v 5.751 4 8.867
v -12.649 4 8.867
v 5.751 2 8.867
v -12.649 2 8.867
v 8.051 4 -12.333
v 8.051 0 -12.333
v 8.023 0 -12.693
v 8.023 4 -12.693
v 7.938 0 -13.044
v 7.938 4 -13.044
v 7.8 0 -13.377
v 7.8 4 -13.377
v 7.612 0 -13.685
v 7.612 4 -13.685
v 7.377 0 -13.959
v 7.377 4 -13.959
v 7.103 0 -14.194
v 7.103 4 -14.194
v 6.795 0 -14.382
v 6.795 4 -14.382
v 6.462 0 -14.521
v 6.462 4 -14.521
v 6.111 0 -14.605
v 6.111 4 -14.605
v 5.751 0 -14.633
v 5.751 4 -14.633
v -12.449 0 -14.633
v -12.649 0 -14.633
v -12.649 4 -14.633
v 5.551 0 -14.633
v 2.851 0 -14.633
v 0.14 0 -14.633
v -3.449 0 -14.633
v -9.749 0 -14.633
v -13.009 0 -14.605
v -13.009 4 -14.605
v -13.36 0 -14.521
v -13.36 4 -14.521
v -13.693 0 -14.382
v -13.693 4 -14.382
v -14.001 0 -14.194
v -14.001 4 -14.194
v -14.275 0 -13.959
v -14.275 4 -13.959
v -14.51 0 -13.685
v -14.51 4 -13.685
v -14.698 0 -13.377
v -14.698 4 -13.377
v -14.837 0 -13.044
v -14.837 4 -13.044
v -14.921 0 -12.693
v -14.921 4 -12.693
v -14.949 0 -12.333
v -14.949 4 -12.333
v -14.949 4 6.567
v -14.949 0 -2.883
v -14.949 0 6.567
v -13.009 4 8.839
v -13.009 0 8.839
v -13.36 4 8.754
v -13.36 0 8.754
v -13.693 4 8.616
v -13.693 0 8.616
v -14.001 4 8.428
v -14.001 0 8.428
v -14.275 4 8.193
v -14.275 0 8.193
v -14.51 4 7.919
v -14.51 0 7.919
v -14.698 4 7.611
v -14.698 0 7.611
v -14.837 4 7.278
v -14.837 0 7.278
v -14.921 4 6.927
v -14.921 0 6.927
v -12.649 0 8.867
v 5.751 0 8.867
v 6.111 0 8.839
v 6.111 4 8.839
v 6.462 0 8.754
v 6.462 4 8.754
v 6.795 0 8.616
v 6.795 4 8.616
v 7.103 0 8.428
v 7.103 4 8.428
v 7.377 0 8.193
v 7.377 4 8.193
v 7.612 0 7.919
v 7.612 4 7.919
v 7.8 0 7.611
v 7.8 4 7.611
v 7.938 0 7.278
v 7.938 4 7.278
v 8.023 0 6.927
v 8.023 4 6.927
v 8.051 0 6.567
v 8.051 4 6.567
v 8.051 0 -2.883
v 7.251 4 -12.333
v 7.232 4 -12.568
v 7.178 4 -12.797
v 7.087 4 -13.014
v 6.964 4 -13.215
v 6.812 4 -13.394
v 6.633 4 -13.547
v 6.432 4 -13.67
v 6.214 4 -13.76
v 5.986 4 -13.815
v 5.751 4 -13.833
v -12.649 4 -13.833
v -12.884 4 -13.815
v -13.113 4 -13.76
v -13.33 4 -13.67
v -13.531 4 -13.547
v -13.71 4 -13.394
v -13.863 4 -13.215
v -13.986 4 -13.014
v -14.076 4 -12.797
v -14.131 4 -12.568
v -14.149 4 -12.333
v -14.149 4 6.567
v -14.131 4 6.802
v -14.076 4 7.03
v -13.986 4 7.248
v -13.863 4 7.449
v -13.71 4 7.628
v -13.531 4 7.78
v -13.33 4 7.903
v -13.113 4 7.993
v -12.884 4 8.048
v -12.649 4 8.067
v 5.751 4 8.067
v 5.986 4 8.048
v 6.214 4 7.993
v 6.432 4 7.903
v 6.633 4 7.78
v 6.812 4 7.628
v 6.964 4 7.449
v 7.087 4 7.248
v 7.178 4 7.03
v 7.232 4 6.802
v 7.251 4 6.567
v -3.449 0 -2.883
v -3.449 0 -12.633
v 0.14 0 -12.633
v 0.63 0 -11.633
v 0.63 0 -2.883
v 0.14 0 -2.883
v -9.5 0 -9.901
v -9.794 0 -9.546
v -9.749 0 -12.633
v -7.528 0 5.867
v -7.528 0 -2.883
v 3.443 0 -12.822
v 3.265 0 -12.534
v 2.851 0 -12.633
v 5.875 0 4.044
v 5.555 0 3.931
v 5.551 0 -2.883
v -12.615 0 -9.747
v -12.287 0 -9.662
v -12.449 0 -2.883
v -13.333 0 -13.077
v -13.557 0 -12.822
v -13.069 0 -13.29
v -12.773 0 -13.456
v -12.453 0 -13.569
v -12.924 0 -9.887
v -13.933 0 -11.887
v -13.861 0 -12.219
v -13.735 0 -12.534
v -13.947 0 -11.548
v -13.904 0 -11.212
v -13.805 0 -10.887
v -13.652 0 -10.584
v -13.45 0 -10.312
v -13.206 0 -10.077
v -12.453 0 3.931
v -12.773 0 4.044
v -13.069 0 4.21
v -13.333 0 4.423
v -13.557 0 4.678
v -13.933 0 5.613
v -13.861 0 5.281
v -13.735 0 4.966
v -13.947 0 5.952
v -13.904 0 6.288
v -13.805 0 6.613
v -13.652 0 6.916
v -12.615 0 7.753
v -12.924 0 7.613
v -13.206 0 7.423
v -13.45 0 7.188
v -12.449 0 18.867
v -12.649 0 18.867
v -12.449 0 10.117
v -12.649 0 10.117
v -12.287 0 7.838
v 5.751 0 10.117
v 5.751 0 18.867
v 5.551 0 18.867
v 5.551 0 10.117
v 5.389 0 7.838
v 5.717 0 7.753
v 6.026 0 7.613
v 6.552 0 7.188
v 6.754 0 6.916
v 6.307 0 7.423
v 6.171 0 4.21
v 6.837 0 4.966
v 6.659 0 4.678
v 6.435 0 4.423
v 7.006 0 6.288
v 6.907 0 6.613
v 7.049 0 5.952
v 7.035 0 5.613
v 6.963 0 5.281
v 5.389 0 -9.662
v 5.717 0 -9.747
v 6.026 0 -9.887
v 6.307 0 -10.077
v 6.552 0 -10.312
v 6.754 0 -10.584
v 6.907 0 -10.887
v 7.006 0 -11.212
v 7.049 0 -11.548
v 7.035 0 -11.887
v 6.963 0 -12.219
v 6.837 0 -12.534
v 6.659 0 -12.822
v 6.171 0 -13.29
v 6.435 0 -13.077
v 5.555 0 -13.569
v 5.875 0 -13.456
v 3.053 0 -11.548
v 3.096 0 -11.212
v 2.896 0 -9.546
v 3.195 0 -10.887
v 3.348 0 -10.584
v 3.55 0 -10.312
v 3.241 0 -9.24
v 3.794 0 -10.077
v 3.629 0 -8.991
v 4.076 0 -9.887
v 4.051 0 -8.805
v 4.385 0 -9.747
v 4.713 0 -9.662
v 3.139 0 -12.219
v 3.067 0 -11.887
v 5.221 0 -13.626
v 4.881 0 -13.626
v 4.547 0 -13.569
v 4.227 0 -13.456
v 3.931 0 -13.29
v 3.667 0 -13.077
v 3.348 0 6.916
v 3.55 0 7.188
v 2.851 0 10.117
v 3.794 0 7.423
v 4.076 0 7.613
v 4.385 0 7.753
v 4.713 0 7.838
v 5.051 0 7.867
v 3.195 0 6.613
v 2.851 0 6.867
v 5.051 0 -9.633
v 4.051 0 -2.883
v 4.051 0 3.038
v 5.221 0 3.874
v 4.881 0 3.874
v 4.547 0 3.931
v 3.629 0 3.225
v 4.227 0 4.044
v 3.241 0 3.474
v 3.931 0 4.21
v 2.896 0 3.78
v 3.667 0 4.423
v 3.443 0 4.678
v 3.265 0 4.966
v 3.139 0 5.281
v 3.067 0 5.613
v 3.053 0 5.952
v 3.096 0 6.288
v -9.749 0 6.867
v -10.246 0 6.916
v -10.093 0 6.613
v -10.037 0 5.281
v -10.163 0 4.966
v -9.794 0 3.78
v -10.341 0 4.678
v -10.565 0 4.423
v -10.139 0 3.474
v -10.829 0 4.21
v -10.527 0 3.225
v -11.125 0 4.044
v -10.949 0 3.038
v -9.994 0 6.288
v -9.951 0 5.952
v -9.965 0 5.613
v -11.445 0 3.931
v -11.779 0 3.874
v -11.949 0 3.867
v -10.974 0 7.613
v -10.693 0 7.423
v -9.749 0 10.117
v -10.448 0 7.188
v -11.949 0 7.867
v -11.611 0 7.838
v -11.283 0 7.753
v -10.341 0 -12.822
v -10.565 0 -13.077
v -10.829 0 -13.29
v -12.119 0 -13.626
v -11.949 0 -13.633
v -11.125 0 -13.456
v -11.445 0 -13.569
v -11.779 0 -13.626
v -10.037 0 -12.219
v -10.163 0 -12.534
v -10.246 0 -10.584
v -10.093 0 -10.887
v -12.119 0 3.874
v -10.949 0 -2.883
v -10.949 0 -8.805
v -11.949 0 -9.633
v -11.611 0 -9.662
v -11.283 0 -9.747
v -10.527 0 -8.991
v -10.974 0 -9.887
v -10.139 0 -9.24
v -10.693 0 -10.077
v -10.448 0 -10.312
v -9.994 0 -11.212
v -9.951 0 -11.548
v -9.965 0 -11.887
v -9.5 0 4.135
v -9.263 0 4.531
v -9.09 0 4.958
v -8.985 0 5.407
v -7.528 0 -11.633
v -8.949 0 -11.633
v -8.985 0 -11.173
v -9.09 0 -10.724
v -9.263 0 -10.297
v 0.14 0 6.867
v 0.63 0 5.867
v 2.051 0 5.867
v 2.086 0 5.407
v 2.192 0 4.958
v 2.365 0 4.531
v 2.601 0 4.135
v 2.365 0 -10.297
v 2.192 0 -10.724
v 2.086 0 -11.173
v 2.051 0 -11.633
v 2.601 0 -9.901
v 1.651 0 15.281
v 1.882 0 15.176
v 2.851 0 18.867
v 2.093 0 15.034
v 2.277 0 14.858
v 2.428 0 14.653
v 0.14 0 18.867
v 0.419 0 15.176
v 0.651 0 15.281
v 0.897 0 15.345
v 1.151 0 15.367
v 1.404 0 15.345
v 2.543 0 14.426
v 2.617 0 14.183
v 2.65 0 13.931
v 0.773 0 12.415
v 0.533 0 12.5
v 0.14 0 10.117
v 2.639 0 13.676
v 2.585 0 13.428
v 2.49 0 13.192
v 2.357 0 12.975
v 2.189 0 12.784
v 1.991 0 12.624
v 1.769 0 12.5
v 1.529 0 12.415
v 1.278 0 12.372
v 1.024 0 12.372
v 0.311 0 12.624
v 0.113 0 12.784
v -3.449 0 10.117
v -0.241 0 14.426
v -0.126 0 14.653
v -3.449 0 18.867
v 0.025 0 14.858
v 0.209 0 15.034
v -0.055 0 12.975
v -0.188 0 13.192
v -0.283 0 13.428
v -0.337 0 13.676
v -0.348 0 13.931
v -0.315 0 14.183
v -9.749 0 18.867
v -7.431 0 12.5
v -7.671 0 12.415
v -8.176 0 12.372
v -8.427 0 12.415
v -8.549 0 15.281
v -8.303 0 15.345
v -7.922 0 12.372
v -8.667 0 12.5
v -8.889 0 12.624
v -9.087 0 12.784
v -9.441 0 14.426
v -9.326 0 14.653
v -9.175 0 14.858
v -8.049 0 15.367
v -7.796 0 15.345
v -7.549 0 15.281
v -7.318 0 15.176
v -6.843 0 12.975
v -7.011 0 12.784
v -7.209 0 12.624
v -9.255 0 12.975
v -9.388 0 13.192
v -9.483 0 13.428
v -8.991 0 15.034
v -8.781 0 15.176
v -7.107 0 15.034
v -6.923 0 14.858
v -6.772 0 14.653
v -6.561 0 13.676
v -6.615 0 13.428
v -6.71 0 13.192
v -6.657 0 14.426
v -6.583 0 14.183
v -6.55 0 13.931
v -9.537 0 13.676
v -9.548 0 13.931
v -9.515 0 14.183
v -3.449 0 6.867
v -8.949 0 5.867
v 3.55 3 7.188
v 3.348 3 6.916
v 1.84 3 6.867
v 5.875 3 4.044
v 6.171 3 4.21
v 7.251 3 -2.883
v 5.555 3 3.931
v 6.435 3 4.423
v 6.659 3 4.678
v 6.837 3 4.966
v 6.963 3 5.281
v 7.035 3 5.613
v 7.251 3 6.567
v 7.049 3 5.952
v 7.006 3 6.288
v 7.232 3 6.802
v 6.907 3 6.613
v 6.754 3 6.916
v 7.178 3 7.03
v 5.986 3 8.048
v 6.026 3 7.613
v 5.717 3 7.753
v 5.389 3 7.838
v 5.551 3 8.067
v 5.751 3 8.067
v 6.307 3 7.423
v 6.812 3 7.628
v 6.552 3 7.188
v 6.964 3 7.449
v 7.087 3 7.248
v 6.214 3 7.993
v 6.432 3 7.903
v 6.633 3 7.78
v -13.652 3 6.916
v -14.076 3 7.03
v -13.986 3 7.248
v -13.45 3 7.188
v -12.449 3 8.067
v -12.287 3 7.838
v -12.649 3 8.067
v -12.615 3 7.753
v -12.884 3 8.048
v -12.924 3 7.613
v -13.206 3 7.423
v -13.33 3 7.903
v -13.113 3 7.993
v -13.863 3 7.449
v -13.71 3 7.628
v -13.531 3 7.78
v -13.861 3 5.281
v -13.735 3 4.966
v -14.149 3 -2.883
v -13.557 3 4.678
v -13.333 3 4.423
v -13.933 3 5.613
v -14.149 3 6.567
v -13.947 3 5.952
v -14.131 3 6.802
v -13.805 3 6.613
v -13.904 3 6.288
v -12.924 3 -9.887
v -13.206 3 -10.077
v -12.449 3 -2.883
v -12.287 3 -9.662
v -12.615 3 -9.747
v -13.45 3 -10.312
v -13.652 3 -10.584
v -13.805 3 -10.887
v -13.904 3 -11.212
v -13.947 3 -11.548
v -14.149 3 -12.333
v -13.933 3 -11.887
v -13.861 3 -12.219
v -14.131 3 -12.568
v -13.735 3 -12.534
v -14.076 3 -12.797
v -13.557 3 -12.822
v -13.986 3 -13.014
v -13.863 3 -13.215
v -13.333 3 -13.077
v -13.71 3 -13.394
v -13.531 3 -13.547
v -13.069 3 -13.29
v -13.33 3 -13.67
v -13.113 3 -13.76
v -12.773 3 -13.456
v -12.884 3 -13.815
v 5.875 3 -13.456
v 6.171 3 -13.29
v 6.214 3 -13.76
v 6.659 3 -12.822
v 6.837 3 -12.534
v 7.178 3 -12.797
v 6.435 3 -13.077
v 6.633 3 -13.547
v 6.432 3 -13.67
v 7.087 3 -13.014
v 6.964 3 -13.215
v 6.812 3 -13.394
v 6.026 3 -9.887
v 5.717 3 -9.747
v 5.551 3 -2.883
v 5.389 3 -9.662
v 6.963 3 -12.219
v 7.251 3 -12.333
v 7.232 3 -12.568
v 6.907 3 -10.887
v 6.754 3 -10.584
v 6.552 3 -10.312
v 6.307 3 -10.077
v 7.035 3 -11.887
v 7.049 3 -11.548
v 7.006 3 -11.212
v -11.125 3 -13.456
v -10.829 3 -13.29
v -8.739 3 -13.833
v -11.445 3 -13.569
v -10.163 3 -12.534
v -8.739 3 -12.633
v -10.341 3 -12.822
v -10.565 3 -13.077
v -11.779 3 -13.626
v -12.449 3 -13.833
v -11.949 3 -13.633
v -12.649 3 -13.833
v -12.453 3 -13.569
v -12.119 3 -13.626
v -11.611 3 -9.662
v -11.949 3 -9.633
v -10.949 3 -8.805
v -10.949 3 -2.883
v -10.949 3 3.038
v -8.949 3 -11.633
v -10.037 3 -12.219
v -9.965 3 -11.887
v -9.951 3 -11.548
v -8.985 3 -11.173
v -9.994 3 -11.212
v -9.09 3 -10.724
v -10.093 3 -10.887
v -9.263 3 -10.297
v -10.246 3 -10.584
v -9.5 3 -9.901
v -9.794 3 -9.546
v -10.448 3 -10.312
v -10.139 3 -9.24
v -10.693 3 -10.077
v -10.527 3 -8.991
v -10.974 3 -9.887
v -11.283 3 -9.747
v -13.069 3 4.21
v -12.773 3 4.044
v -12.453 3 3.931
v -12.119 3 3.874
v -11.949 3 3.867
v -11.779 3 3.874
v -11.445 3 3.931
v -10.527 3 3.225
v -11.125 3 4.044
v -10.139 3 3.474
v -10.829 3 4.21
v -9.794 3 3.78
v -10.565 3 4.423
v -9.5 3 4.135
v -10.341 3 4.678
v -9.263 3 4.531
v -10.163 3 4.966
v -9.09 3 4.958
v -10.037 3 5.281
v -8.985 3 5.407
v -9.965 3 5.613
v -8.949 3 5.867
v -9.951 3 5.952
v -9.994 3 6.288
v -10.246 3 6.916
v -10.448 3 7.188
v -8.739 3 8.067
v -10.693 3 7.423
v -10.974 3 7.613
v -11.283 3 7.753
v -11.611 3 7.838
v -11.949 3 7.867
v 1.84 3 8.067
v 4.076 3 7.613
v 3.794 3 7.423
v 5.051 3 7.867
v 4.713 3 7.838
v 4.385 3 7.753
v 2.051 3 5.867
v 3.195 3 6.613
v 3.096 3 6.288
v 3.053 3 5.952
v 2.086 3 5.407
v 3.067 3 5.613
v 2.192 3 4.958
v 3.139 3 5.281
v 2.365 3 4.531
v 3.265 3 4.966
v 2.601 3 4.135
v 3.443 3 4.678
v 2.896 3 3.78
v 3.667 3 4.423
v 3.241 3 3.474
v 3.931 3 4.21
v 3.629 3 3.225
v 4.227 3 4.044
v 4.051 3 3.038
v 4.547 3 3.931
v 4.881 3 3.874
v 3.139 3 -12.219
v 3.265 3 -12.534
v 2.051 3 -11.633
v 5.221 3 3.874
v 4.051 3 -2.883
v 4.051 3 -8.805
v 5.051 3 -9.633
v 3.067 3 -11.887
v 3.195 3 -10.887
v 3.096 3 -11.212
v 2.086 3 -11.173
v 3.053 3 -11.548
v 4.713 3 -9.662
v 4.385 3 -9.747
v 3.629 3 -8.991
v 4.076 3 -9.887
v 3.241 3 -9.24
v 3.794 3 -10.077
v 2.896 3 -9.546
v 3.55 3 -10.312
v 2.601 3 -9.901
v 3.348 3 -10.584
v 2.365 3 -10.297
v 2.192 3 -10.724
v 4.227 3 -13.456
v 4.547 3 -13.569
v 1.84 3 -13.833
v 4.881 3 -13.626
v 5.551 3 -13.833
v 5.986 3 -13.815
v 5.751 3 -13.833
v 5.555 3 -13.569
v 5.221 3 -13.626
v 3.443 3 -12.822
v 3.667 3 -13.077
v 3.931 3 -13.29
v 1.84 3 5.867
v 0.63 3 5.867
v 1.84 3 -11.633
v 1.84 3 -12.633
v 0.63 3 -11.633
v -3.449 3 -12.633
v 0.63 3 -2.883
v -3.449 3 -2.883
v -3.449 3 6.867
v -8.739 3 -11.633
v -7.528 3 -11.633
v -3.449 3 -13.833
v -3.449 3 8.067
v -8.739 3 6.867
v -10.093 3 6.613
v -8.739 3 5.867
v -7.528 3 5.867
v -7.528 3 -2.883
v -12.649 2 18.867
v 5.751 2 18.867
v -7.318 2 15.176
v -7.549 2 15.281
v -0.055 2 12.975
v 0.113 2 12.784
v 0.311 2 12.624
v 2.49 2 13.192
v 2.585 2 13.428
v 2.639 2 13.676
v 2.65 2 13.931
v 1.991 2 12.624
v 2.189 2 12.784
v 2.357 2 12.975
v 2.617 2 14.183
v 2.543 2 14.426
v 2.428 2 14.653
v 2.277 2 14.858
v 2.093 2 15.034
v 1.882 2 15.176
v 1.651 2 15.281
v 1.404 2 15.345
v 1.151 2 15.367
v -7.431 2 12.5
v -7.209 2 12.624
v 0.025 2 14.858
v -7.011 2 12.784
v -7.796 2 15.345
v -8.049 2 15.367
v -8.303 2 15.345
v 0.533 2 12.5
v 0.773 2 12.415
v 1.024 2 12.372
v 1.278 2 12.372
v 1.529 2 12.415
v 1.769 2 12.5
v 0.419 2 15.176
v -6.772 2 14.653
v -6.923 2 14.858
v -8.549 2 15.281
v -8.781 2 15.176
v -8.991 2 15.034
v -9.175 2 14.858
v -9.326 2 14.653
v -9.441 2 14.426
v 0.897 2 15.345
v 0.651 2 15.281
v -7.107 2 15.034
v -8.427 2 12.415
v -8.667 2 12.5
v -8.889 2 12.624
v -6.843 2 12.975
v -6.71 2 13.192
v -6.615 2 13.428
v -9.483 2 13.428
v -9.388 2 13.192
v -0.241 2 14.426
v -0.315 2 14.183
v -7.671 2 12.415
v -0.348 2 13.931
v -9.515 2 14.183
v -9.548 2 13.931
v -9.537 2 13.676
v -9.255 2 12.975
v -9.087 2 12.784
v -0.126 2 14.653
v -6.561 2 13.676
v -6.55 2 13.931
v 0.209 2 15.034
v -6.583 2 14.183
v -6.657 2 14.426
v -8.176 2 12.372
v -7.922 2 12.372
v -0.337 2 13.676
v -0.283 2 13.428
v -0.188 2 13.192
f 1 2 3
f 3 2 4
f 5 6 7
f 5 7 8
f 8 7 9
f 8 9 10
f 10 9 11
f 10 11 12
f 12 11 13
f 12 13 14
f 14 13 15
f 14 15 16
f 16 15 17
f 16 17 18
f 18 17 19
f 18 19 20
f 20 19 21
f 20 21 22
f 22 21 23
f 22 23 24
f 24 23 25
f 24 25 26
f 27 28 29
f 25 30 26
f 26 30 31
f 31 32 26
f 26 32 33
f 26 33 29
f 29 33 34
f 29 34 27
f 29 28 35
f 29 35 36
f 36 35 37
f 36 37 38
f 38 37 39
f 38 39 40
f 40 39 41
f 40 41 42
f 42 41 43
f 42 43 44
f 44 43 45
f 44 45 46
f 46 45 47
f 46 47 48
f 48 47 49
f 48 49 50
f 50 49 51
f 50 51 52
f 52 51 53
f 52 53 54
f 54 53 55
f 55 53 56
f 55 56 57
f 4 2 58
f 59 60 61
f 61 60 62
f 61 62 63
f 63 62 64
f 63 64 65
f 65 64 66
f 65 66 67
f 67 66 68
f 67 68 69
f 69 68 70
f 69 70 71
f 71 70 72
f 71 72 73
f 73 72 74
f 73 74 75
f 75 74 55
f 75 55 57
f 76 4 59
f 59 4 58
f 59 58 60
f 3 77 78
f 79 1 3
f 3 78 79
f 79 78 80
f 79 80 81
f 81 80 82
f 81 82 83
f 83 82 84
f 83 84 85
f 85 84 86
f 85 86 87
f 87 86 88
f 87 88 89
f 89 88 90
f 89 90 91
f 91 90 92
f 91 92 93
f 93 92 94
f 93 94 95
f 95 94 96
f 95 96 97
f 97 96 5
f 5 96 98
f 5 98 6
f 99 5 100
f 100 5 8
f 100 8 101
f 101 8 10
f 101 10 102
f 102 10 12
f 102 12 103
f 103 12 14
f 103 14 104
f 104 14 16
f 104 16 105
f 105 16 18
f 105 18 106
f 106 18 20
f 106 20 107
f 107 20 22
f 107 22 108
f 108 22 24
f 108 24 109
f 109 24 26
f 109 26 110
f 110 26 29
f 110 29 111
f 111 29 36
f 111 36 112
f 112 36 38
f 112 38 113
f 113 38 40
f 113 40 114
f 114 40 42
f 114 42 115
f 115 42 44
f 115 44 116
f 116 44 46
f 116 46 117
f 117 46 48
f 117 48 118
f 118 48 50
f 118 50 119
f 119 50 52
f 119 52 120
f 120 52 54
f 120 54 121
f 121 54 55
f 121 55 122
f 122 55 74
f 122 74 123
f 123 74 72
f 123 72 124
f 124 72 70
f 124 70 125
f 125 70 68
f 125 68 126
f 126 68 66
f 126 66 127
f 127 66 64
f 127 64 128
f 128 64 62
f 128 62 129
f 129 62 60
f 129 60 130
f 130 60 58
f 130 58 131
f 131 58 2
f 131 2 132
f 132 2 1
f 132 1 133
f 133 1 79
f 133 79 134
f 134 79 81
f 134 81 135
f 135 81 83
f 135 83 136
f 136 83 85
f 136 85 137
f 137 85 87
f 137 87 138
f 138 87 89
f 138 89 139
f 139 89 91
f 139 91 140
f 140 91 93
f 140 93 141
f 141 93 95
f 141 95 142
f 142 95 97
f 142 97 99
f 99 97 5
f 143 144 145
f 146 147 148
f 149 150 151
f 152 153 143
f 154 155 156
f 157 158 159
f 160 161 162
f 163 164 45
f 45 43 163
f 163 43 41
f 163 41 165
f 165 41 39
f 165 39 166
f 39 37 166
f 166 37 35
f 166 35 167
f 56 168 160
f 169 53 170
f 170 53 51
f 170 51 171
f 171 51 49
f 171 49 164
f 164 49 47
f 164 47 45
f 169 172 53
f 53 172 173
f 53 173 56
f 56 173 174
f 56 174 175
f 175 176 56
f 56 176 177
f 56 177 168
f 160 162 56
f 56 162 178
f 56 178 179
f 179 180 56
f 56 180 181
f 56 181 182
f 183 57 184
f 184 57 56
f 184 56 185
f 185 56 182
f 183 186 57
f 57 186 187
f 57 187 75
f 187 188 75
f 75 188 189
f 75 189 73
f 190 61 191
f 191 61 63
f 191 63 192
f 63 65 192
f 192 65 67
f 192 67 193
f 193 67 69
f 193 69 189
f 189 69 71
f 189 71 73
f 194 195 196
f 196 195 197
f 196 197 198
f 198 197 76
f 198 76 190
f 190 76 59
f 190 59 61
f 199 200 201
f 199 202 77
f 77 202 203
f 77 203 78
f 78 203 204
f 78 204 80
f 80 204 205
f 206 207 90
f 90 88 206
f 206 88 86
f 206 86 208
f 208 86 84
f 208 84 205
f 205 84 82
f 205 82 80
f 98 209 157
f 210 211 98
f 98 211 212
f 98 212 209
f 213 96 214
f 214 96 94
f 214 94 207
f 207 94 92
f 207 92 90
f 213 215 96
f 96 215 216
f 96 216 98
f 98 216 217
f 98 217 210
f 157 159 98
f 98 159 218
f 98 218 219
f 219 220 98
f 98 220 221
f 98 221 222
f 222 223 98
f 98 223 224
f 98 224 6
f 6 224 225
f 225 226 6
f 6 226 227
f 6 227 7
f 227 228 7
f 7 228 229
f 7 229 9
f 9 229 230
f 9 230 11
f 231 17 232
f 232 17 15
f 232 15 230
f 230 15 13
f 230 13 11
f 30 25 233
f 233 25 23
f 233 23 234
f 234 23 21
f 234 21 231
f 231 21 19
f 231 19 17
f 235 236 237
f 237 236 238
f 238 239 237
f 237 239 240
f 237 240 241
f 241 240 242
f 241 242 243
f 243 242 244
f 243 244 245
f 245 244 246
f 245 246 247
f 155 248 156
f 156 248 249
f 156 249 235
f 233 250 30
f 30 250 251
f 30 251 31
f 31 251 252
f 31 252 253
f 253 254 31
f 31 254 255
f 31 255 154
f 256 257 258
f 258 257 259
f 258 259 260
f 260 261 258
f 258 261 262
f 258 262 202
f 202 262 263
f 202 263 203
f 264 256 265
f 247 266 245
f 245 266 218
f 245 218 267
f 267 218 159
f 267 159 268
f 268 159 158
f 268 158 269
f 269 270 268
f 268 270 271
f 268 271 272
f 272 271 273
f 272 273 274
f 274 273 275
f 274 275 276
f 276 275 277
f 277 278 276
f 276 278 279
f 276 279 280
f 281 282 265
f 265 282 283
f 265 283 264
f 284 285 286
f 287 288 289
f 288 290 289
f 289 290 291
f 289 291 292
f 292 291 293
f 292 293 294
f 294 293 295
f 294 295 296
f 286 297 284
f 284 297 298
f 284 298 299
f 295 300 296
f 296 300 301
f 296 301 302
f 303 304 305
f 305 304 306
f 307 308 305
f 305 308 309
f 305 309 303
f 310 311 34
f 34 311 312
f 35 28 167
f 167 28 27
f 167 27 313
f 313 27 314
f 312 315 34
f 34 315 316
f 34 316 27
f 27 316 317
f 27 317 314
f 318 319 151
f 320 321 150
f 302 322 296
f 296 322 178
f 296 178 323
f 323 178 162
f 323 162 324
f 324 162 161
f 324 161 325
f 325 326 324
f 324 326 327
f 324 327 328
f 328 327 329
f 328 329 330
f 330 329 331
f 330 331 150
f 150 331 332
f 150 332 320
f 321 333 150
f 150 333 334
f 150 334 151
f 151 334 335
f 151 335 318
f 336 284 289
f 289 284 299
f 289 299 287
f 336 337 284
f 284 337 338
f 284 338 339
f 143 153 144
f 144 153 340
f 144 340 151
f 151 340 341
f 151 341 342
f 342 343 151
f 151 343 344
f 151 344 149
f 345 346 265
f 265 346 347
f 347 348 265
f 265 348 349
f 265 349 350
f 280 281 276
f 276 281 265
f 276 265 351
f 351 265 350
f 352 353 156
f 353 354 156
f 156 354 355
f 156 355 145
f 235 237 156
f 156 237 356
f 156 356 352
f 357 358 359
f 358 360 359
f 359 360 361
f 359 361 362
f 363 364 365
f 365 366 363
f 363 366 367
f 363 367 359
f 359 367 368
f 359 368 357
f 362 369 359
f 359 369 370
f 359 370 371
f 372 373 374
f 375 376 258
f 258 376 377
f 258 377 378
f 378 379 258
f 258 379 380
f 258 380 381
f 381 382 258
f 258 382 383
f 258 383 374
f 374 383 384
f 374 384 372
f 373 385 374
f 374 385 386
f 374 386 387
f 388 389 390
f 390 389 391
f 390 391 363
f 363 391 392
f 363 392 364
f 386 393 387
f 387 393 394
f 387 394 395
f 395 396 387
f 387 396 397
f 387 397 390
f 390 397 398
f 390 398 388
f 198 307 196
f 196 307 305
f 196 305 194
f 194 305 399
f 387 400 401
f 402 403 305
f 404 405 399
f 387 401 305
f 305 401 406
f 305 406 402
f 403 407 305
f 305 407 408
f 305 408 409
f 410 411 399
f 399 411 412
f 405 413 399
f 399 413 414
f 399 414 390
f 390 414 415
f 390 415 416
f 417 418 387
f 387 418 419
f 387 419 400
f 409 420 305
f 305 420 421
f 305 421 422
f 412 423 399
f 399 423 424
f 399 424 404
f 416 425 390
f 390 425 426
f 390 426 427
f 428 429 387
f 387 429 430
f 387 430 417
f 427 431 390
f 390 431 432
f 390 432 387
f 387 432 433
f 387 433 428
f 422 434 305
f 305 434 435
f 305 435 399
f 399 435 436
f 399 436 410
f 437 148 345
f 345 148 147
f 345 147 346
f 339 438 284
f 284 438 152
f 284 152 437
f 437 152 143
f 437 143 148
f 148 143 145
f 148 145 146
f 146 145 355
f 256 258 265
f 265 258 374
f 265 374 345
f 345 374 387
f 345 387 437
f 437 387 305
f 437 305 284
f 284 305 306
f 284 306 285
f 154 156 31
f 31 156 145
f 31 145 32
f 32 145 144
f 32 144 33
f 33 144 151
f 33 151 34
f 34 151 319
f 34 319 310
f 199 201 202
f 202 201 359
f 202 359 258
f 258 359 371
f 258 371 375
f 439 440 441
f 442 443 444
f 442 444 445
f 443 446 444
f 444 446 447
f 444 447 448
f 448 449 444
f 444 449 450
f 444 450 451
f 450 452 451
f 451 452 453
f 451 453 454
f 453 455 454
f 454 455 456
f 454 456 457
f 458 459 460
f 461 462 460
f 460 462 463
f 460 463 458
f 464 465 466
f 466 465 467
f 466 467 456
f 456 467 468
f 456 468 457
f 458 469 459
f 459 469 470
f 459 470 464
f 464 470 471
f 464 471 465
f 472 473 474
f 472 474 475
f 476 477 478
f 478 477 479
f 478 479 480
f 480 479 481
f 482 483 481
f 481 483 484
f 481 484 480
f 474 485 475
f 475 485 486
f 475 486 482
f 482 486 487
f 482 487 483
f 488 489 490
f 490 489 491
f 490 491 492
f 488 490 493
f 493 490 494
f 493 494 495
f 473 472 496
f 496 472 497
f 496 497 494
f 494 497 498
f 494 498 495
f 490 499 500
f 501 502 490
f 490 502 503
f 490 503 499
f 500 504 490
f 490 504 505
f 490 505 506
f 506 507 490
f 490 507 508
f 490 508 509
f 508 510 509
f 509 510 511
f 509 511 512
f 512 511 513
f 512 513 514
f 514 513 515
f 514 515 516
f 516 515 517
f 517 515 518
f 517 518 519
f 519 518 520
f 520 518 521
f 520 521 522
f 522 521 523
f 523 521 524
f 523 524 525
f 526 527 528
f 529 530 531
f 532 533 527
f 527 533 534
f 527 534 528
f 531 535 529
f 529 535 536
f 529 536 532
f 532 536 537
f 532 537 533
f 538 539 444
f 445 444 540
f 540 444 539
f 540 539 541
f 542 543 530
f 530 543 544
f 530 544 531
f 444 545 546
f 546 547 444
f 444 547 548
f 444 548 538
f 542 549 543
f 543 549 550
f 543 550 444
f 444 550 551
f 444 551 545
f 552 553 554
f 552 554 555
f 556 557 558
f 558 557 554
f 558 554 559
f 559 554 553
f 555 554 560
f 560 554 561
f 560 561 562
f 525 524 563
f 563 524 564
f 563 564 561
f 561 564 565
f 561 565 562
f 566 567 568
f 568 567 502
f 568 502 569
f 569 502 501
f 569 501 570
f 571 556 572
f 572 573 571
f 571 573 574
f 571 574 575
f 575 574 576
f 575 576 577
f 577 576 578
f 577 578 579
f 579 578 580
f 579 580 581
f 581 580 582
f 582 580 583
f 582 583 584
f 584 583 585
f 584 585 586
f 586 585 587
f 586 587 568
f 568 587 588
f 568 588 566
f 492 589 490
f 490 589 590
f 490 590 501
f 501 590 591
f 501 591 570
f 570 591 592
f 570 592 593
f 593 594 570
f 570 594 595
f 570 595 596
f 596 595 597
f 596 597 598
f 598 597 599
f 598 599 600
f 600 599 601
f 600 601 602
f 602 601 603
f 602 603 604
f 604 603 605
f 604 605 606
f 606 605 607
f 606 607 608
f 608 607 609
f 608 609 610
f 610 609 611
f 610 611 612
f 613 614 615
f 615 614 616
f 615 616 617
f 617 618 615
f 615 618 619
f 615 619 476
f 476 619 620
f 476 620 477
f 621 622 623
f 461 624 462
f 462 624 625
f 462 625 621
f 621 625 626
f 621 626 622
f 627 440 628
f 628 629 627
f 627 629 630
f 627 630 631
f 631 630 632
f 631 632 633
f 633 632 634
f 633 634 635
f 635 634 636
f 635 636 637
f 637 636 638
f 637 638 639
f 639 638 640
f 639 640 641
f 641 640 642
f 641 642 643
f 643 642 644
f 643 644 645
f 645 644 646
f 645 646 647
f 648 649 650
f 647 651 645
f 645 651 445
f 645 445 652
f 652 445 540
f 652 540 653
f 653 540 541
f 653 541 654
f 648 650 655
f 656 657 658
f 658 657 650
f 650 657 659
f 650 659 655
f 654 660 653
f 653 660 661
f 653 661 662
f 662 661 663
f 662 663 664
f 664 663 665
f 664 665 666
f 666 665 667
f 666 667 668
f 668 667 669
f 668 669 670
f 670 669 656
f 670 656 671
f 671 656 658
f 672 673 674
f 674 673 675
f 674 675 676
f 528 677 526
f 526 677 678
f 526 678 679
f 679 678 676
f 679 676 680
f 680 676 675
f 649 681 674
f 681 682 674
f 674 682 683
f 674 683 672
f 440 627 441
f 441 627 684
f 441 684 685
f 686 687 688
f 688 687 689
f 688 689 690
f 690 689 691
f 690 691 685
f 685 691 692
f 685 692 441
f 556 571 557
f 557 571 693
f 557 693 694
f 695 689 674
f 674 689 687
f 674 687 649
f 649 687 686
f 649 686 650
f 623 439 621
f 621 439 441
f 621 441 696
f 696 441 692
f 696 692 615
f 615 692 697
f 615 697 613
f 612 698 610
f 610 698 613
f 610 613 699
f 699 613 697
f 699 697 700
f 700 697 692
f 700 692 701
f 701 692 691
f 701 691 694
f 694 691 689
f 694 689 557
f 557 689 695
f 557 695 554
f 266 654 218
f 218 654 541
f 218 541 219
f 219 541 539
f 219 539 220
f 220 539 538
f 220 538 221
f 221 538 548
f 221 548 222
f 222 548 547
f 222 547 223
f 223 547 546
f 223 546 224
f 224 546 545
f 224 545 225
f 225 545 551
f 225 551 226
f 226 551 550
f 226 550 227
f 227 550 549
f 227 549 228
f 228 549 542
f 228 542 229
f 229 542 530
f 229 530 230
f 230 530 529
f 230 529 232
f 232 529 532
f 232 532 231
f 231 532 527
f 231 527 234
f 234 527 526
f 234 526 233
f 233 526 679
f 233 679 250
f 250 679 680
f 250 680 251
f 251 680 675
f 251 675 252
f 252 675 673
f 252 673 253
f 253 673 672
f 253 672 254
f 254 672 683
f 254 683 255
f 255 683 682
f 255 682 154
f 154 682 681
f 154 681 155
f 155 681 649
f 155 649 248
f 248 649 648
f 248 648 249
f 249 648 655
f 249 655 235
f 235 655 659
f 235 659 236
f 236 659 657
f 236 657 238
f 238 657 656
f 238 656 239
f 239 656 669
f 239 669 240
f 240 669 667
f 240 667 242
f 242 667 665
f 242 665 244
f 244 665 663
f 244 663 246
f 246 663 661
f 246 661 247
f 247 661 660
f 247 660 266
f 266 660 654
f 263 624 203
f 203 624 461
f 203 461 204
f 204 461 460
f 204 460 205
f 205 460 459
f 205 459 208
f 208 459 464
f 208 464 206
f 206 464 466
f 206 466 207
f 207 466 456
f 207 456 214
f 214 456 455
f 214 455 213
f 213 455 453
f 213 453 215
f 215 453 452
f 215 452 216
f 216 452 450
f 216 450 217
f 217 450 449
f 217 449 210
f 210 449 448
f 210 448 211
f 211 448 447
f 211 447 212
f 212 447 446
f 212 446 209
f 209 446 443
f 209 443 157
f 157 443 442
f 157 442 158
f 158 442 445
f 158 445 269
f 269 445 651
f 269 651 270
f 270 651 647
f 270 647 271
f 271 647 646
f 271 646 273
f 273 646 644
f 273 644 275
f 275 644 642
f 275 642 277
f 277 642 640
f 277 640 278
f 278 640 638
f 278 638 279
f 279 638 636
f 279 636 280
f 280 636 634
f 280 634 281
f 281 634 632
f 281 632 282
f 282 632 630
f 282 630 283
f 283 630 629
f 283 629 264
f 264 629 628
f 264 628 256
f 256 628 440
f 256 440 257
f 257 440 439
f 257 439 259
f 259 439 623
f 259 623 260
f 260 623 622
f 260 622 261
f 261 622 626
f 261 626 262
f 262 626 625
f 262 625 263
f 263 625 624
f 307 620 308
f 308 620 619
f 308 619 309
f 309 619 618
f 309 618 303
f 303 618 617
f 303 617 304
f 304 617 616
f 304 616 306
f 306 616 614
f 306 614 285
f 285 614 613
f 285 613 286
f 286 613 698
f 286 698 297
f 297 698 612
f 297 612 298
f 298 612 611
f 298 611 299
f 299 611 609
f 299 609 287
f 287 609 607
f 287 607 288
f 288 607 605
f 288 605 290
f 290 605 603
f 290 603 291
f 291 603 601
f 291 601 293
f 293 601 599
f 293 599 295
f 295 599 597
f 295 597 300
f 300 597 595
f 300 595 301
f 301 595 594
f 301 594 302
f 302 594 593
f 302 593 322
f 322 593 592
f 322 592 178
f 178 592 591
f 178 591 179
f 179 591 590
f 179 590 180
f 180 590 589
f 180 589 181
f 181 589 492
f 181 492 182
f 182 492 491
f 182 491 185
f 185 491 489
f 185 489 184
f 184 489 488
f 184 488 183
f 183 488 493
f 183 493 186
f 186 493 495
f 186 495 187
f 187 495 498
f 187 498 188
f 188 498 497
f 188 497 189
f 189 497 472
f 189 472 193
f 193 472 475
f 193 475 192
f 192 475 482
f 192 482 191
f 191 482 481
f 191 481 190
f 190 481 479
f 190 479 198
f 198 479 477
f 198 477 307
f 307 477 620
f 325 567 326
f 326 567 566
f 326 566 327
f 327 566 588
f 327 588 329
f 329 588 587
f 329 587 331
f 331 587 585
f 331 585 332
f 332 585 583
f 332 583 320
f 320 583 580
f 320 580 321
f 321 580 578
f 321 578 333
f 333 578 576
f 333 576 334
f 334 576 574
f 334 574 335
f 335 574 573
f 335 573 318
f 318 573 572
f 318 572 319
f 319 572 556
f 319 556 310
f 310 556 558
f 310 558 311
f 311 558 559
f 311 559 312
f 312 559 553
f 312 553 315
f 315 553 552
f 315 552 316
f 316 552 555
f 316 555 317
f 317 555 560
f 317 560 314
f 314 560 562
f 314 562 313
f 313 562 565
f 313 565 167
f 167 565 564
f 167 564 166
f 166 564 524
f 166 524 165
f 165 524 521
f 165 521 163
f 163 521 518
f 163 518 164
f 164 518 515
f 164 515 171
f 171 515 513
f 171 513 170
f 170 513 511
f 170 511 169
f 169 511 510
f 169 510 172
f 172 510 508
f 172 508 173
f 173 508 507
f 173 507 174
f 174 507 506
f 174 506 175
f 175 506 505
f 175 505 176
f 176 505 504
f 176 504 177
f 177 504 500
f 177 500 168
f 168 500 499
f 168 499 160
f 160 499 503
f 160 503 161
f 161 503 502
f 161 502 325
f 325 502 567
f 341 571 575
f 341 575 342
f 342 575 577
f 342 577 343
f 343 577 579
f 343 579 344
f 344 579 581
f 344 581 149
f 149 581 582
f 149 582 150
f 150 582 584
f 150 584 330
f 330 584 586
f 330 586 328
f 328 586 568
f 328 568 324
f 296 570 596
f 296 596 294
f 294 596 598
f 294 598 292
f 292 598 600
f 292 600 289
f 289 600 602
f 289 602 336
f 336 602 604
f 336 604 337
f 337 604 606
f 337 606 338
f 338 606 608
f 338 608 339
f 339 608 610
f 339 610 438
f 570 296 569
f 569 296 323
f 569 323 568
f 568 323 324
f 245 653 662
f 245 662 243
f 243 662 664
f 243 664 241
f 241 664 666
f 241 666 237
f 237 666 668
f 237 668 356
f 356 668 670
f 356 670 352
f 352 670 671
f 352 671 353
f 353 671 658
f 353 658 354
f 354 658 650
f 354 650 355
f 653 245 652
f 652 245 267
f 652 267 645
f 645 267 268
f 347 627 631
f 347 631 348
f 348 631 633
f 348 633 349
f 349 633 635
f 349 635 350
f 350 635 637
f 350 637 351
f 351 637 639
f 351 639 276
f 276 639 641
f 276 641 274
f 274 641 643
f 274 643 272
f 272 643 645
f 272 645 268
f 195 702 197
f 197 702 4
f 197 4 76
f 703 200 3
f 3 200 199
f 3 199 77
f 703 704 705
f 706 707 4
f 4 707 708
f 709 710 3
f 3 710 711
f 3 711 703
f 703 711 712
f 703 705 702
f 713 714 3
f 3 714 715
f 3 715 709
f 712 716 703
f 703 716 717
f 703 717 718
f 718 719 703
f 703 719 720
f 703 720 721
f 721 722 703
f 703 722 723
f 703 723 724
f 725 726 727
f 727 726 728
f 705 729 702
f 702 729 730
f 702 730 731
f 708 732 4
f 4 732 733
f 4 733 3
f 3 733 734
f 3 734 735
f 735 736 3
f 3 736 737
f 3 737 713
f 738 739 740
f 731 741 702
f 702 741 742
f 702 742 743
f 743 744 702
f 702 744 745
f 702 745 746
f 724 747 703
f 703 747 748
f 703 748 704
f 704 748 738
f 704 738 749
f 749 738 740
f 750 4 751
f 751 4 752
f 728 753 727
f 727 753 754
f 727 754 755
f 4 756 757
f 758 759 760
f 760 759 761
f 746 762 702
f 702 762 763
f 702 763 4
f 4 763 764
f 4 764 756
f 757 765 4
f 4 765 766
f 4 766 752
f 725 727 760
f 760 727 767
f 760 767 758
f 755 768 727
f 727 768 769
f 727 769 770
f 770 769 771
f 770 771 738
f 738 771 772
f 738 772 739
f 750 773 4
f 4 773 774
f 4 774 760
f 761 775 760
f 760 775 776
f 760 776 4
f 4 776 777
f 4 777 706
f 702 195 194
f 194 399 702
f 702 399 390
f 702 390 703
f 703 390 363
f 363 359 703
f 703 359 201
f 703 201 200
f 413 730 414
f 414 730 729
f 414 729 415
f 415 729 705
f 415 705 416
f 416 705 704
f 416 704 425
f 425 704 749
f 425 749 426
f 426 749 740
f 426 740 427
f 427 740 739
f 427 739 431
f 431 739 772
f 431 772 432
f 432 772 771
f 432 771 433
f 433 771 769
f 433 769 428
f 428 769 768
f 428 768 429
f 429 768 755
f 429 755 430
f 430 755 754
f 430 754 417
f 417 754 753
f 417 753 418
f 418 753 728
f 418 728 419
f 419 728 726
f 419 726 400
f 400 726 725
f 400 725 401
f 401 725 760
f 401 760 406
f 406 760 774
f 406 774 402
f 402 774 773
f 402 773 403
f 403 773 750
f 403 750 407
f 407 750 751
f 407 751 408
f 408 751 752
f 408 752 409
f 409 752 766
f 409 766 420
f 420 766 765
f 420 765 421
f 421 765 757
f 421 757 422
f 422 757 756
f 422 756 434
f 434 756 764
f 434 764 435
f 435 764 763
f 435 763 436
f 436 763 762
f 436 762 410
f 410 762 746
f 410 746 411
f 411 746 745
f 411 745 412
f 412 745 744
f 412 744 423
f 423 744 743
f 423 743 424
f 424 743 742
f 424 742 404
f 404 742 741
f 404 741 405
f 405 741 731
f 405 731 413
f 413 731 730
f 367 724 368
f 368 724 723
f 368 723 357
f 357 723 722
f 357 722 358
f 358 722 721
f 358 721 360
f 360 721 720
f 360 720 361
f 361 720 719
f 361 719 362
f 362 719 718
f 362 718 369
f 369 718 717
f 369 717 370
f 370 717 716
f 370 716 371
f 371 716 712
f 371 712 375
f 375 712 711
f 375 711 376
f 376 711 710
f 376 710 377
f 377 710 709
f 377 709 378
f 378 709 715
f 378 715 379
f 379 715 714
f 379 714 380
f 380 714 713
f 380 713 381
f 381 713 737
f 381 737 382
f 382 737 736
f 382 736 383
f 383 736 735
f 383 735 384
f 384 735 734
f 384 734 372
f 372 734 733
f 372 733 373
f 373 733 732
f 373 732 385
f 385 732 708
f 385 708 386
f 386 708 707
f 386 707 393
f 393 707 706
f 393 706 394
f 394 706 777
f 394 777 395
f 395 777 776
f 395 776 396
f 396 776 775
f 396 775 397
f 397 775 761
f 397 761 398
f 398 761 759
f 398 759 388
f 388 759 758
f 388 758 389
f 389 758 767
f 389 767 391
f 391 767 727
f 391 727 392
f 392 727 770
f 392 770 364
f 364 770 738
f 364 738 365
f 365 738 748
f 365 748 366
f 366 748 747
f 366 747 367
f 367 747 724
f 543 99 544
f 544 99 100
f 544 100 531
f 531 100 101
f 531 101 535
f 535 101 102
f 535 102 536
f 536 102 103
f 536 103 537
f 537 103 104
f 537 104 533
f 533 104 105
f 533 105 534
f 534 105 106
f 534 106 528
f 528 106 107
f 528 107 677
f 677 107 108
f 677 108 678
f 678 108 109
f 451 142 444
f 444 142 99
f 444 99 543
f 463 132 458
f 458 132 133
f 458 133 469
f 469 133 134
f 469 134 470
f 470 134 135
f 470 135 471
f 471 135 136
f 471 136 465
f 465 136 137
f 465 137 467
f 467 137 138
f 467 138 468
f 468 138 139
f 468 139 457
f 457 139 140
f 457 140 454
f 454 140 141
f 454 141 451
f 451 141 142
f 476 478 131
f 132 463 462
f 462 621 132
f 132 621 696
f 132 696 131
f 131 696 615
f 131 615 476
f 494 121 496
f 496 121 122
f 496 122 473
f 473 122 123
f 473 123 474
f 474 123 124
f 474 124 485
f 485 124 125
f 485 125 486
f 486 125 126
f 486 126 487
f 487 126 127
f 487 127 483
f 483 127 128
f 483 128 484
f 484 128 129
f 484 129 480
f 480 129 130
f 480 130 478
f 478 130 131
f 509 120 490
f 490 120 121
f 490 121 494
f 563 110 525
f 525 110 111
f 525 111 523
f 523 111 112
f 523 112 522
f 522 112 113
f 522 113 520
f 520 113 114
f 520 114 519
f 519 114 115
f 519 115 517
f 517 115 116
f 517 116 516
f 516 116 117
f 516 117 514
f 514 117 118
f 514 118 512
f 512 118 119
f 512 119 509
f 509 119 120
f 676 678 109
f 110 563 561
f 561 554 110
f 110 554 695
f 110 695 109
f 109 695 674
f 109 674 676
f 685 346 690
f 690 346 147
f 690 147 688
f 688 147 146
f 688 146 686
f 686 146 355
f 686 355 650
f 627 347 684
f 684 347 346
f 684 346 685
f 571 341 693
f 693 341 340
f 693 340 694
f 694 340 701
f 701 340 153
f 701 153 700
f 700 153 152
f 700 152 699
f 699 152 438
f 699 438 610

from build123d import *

# Parameters (mm, degrees)
BOSS_EXTRUDE1_DEPTH = 4
CUT_EXTRUDE2_DEPTH  = 1
SKETCH5_R           = 2
CUT_EXTRUDE3_DEPTH  = 22.132971525
CUT_EXTRUDE4_DEPTH  = 22.132971525
SKETCH7_W           = 18.4
SKETCH7_H           = 2
BOSS_EXTRUDE2_DEPTH = 10
SKETCH8_R           = 1.5
CUT_EXTRUDE5_DEPTH  = 25.154392176
CUT_EXTRUDE6_DEPTH  = 1
SKETCH11_W          = 1.421057218
SKETCH11_H          = 17.5
CUT_EXTRUDE7_DEPTH  = 25.257672217


with BuildPart() as part:
    # Sketch1 → Boss-Extrude1 (new body)
    with BuildSketch(Plane(origin=(0, 0, 0), x_dir=(1, 0, 0), z_dir=(0, 1, 0))):
        with BuildLine():
            Line((-12.649074074, 14.633101852), (5.750925926, 14.633101852))
            ThreePointArc((5.750925926, 14.633101852), (7.377271523, 13.959447449), (8.050925926, 12.333101852))
            Line((8.050925926, 12.333101852), (8.050925926, -6.566898148))
            ThreePointArc((8.050925926, -6.566898148), (7.377271523, -8.193243745), (5.750925926, -8.866898148))
            Line((5.750925926, -8.866898148), (-12.649074074, -8.866898148))
            ThreePointArc((-12.649074074, -8.866898148), (-14.275419671, -8.193243745), (-14.949074074, -6.566898148))
            Line((-14.949074074, -6.566898148), (-14.949074074, 12.333101852))
            ThreePointArc((-14.949074074, 12.333101852), (-14.275419671, 13.959447449), (-12.649074074, 14.633101852))
        make_face()
    extrude(amount=BOSS_EXTRUDE1_DEPTH)

    # Sketch2 → Cut-Extrude2 (cut)
    with BuildSketch(Plane(origin=(0, 4, 0), x_dir=(1, 0, 0), z_dir=(0, 1, 0))):
        with BuildLine():
            Line((5.750925926, 13.633101852), (-12.649074074, 13.633101852))
            ThreePointArc((-12.649074074, 13.633101852), (-13.56831289, 13.252340667), (-13.949074074, 12.333101852))
            Line((-13.949074074, 12.333101852), (-13.949074074, -6.566898148))
            ThreePointArc((-13.949074074, -6.566898148), (-13.56831289, -7.486136964), (-12.649074074, -7.866898148))
            Line((-12.649074074, -7.866898148), (5.750925926, -7.866898148))
            ThreePointArc((5.750925926, -7.866898148), (6.670164741, -7.486136964), (7.050925926, -6.566898148))
            Line((7.050925926, -6.566898148), (7.050925926, 12.333101852))
            ThreePointArc((7.050925926, 12.333101852), (6.670164741, 13.252340667), (5.750925926, 13.633101852))
        make_face()
    extrude(amount=-CUT_EXTRUDE2_DEPTH, mode=Mode.SUBTRACT)

    # Sketch5 → Cut-Extrude3 (cut, through all)
    with BuildSketch(Plane(origin=(0, 3, 0), x_dir=(1, 0, 0), z_dir=(0, 1, 0))):
        with Locations(Location((5.050925926, 11.633101852, 0), (0, 0, 270))):
            Circle(SKETCH5_R)
        with Locations(Location((5.050925926, -5.866898148, 0), (0, 0, 270))):
            Circle(SKETCH5_R)
        with Locations(Location((-11.949074074, -5.866898148, 0), (0, 0, 270))):
            Circle(SKETCH5_R)
        with Locations(Location((-11.949074074, 11.633101852, 0), (0, 0, 90))):
            Circle(SKETCH5_R)
    extrude(amount=-CUT_EXTRUDE3_DEPTH, mode=Mode.SUBTRACT)

    # Sketch6 → Cut-Extrude4 (cut, through all)
    with BuildSketch(Plane(origin=(0, 3, 0), x_dir=(1, 0, 0), z_dir=(0, 1, 0))):
        with BuildLine():
            Line((4.050925926, -3.038471023), (4.050925926, 8.804674727))
            ThreePointArc((4.050925926, 8.804674727), (2.601436183, 9.901051044), (2.050925926, 11.633101852))
            Line((2.050925926, 11.633101852), (2.050925926, -5.866898148))
            ThreePointArc((2.050925926, -5.866898148), (2.601436183, -4.134847341), (4.050925926, -3.038471023))
        make_face()
        with BuildLine():
            Line((-10.949074074, 8.804674727), (-10.949074074, -3.038471023))
            ThreePointArc((-10.949074074, -3.038471023), (-9.499584331, -4.134847341), (-8.949074074, -5.866898148))
            Line((-8.949074074, -5.866898148), (-8.949074074, 11.633101852))
            ThreePointArc((-8.949074074, 11.633101852), (-9.499584331, 9.901051044), (-10.949074074, 8.804674727))
        make_face()
    extrude(amount=-CUT_EXTRUDE4_DEPTH, mode=Mode.SUBTRACT)

    # Sketch7 → Boss-Extrude2 (add)
    with BuildSketch(Plane.XY.offset(8.866898148)):
        with Locations((-3.449074074, 1)):
            Rectangle(SKETCH7_W, SKETCH7_H)
    extrude(amount=BOSS_EXTRUDE2_DEPTH)

    # Sketch8 → Cut-Extrude5 (cut, through all)
    with BuildSketch(Plane(origin=(0, 2, 0), x_dir=(1, 0, 0), z_dir=(0, 1, 0))):
        with Locations(Location((1.150925926, -13.866898148, 0), (0, 0, 270))):
            Circle(SKETCH8_R)
        with Locations(Location((-8.049074074, -13.866898148, 0), (0, 0, 270))):
            Circle(SKETCH8_R)
    extrude(amount=-CUT_EXTRUDE5_DEPTH, mode=Mode.SUBTRACT)

    # Sketch9 → Cut-Extrude6 (cut)
    with BuildSketch(Plane(origin=(0, 4, 0), x_dir=(1, 0, 0), z_dir=(0, 1, 0))):
        with BuildLine():
            Line((5.750925926, 13.833101852), (-12.649074074, 13.833101852))
            ThreePointArc((-12.649074074, 13.833101852), (-13.709734246, 13.393762024), (-14.149074074, 12.333101852))
            Line((-14.149074074, 12.333101852), (-14.149074074, -6.566898148))
            ThreePointArc((-14.149074074, -6.566898148), (-13.709734246, -7.62755832), (-12.649074074, -8.066898148))
            Line((-12.649074074, -8.066898148), (5.750925926, -8.066898148))
            ThreePointArc((5.750925926, -8.066898148), (6.811586098, -7.62755832), (7.250925926, -6.566898148))
            Line((7.250925926, -6.566898148), (7.250925926, 12.333101852))
            ThreePointArc((7.250925926, 12.333101852), (6.811586098, 13.393762024), (5.750925926, 13.833101852))
        make_face()
    extrude(amount=-CUT_EXTRUDE6_DEPTH, mode=Mode.SUBTRACT)

    # Sketch11 → Cut-Extrude7 (cut, through all)
    with BuildSketch(Plane(origin=(0, 3, 0), x_dir=(1, 0, 0), z_dir=(0, 1, 0))):
        with Locations((-8.238545465, 2.883101852)):
            Rectangle(SKETCH11_W, SKETCH11_H)
        with Locations((1.340397317, 2.883101852)):
            Rectangle(SKETCH11_W, SKETCH11_H)
    extrude(amount=-CUT_EXTRUDE7_DEPTH, mode=Mode.SUBTRACT)


solid = part.part
